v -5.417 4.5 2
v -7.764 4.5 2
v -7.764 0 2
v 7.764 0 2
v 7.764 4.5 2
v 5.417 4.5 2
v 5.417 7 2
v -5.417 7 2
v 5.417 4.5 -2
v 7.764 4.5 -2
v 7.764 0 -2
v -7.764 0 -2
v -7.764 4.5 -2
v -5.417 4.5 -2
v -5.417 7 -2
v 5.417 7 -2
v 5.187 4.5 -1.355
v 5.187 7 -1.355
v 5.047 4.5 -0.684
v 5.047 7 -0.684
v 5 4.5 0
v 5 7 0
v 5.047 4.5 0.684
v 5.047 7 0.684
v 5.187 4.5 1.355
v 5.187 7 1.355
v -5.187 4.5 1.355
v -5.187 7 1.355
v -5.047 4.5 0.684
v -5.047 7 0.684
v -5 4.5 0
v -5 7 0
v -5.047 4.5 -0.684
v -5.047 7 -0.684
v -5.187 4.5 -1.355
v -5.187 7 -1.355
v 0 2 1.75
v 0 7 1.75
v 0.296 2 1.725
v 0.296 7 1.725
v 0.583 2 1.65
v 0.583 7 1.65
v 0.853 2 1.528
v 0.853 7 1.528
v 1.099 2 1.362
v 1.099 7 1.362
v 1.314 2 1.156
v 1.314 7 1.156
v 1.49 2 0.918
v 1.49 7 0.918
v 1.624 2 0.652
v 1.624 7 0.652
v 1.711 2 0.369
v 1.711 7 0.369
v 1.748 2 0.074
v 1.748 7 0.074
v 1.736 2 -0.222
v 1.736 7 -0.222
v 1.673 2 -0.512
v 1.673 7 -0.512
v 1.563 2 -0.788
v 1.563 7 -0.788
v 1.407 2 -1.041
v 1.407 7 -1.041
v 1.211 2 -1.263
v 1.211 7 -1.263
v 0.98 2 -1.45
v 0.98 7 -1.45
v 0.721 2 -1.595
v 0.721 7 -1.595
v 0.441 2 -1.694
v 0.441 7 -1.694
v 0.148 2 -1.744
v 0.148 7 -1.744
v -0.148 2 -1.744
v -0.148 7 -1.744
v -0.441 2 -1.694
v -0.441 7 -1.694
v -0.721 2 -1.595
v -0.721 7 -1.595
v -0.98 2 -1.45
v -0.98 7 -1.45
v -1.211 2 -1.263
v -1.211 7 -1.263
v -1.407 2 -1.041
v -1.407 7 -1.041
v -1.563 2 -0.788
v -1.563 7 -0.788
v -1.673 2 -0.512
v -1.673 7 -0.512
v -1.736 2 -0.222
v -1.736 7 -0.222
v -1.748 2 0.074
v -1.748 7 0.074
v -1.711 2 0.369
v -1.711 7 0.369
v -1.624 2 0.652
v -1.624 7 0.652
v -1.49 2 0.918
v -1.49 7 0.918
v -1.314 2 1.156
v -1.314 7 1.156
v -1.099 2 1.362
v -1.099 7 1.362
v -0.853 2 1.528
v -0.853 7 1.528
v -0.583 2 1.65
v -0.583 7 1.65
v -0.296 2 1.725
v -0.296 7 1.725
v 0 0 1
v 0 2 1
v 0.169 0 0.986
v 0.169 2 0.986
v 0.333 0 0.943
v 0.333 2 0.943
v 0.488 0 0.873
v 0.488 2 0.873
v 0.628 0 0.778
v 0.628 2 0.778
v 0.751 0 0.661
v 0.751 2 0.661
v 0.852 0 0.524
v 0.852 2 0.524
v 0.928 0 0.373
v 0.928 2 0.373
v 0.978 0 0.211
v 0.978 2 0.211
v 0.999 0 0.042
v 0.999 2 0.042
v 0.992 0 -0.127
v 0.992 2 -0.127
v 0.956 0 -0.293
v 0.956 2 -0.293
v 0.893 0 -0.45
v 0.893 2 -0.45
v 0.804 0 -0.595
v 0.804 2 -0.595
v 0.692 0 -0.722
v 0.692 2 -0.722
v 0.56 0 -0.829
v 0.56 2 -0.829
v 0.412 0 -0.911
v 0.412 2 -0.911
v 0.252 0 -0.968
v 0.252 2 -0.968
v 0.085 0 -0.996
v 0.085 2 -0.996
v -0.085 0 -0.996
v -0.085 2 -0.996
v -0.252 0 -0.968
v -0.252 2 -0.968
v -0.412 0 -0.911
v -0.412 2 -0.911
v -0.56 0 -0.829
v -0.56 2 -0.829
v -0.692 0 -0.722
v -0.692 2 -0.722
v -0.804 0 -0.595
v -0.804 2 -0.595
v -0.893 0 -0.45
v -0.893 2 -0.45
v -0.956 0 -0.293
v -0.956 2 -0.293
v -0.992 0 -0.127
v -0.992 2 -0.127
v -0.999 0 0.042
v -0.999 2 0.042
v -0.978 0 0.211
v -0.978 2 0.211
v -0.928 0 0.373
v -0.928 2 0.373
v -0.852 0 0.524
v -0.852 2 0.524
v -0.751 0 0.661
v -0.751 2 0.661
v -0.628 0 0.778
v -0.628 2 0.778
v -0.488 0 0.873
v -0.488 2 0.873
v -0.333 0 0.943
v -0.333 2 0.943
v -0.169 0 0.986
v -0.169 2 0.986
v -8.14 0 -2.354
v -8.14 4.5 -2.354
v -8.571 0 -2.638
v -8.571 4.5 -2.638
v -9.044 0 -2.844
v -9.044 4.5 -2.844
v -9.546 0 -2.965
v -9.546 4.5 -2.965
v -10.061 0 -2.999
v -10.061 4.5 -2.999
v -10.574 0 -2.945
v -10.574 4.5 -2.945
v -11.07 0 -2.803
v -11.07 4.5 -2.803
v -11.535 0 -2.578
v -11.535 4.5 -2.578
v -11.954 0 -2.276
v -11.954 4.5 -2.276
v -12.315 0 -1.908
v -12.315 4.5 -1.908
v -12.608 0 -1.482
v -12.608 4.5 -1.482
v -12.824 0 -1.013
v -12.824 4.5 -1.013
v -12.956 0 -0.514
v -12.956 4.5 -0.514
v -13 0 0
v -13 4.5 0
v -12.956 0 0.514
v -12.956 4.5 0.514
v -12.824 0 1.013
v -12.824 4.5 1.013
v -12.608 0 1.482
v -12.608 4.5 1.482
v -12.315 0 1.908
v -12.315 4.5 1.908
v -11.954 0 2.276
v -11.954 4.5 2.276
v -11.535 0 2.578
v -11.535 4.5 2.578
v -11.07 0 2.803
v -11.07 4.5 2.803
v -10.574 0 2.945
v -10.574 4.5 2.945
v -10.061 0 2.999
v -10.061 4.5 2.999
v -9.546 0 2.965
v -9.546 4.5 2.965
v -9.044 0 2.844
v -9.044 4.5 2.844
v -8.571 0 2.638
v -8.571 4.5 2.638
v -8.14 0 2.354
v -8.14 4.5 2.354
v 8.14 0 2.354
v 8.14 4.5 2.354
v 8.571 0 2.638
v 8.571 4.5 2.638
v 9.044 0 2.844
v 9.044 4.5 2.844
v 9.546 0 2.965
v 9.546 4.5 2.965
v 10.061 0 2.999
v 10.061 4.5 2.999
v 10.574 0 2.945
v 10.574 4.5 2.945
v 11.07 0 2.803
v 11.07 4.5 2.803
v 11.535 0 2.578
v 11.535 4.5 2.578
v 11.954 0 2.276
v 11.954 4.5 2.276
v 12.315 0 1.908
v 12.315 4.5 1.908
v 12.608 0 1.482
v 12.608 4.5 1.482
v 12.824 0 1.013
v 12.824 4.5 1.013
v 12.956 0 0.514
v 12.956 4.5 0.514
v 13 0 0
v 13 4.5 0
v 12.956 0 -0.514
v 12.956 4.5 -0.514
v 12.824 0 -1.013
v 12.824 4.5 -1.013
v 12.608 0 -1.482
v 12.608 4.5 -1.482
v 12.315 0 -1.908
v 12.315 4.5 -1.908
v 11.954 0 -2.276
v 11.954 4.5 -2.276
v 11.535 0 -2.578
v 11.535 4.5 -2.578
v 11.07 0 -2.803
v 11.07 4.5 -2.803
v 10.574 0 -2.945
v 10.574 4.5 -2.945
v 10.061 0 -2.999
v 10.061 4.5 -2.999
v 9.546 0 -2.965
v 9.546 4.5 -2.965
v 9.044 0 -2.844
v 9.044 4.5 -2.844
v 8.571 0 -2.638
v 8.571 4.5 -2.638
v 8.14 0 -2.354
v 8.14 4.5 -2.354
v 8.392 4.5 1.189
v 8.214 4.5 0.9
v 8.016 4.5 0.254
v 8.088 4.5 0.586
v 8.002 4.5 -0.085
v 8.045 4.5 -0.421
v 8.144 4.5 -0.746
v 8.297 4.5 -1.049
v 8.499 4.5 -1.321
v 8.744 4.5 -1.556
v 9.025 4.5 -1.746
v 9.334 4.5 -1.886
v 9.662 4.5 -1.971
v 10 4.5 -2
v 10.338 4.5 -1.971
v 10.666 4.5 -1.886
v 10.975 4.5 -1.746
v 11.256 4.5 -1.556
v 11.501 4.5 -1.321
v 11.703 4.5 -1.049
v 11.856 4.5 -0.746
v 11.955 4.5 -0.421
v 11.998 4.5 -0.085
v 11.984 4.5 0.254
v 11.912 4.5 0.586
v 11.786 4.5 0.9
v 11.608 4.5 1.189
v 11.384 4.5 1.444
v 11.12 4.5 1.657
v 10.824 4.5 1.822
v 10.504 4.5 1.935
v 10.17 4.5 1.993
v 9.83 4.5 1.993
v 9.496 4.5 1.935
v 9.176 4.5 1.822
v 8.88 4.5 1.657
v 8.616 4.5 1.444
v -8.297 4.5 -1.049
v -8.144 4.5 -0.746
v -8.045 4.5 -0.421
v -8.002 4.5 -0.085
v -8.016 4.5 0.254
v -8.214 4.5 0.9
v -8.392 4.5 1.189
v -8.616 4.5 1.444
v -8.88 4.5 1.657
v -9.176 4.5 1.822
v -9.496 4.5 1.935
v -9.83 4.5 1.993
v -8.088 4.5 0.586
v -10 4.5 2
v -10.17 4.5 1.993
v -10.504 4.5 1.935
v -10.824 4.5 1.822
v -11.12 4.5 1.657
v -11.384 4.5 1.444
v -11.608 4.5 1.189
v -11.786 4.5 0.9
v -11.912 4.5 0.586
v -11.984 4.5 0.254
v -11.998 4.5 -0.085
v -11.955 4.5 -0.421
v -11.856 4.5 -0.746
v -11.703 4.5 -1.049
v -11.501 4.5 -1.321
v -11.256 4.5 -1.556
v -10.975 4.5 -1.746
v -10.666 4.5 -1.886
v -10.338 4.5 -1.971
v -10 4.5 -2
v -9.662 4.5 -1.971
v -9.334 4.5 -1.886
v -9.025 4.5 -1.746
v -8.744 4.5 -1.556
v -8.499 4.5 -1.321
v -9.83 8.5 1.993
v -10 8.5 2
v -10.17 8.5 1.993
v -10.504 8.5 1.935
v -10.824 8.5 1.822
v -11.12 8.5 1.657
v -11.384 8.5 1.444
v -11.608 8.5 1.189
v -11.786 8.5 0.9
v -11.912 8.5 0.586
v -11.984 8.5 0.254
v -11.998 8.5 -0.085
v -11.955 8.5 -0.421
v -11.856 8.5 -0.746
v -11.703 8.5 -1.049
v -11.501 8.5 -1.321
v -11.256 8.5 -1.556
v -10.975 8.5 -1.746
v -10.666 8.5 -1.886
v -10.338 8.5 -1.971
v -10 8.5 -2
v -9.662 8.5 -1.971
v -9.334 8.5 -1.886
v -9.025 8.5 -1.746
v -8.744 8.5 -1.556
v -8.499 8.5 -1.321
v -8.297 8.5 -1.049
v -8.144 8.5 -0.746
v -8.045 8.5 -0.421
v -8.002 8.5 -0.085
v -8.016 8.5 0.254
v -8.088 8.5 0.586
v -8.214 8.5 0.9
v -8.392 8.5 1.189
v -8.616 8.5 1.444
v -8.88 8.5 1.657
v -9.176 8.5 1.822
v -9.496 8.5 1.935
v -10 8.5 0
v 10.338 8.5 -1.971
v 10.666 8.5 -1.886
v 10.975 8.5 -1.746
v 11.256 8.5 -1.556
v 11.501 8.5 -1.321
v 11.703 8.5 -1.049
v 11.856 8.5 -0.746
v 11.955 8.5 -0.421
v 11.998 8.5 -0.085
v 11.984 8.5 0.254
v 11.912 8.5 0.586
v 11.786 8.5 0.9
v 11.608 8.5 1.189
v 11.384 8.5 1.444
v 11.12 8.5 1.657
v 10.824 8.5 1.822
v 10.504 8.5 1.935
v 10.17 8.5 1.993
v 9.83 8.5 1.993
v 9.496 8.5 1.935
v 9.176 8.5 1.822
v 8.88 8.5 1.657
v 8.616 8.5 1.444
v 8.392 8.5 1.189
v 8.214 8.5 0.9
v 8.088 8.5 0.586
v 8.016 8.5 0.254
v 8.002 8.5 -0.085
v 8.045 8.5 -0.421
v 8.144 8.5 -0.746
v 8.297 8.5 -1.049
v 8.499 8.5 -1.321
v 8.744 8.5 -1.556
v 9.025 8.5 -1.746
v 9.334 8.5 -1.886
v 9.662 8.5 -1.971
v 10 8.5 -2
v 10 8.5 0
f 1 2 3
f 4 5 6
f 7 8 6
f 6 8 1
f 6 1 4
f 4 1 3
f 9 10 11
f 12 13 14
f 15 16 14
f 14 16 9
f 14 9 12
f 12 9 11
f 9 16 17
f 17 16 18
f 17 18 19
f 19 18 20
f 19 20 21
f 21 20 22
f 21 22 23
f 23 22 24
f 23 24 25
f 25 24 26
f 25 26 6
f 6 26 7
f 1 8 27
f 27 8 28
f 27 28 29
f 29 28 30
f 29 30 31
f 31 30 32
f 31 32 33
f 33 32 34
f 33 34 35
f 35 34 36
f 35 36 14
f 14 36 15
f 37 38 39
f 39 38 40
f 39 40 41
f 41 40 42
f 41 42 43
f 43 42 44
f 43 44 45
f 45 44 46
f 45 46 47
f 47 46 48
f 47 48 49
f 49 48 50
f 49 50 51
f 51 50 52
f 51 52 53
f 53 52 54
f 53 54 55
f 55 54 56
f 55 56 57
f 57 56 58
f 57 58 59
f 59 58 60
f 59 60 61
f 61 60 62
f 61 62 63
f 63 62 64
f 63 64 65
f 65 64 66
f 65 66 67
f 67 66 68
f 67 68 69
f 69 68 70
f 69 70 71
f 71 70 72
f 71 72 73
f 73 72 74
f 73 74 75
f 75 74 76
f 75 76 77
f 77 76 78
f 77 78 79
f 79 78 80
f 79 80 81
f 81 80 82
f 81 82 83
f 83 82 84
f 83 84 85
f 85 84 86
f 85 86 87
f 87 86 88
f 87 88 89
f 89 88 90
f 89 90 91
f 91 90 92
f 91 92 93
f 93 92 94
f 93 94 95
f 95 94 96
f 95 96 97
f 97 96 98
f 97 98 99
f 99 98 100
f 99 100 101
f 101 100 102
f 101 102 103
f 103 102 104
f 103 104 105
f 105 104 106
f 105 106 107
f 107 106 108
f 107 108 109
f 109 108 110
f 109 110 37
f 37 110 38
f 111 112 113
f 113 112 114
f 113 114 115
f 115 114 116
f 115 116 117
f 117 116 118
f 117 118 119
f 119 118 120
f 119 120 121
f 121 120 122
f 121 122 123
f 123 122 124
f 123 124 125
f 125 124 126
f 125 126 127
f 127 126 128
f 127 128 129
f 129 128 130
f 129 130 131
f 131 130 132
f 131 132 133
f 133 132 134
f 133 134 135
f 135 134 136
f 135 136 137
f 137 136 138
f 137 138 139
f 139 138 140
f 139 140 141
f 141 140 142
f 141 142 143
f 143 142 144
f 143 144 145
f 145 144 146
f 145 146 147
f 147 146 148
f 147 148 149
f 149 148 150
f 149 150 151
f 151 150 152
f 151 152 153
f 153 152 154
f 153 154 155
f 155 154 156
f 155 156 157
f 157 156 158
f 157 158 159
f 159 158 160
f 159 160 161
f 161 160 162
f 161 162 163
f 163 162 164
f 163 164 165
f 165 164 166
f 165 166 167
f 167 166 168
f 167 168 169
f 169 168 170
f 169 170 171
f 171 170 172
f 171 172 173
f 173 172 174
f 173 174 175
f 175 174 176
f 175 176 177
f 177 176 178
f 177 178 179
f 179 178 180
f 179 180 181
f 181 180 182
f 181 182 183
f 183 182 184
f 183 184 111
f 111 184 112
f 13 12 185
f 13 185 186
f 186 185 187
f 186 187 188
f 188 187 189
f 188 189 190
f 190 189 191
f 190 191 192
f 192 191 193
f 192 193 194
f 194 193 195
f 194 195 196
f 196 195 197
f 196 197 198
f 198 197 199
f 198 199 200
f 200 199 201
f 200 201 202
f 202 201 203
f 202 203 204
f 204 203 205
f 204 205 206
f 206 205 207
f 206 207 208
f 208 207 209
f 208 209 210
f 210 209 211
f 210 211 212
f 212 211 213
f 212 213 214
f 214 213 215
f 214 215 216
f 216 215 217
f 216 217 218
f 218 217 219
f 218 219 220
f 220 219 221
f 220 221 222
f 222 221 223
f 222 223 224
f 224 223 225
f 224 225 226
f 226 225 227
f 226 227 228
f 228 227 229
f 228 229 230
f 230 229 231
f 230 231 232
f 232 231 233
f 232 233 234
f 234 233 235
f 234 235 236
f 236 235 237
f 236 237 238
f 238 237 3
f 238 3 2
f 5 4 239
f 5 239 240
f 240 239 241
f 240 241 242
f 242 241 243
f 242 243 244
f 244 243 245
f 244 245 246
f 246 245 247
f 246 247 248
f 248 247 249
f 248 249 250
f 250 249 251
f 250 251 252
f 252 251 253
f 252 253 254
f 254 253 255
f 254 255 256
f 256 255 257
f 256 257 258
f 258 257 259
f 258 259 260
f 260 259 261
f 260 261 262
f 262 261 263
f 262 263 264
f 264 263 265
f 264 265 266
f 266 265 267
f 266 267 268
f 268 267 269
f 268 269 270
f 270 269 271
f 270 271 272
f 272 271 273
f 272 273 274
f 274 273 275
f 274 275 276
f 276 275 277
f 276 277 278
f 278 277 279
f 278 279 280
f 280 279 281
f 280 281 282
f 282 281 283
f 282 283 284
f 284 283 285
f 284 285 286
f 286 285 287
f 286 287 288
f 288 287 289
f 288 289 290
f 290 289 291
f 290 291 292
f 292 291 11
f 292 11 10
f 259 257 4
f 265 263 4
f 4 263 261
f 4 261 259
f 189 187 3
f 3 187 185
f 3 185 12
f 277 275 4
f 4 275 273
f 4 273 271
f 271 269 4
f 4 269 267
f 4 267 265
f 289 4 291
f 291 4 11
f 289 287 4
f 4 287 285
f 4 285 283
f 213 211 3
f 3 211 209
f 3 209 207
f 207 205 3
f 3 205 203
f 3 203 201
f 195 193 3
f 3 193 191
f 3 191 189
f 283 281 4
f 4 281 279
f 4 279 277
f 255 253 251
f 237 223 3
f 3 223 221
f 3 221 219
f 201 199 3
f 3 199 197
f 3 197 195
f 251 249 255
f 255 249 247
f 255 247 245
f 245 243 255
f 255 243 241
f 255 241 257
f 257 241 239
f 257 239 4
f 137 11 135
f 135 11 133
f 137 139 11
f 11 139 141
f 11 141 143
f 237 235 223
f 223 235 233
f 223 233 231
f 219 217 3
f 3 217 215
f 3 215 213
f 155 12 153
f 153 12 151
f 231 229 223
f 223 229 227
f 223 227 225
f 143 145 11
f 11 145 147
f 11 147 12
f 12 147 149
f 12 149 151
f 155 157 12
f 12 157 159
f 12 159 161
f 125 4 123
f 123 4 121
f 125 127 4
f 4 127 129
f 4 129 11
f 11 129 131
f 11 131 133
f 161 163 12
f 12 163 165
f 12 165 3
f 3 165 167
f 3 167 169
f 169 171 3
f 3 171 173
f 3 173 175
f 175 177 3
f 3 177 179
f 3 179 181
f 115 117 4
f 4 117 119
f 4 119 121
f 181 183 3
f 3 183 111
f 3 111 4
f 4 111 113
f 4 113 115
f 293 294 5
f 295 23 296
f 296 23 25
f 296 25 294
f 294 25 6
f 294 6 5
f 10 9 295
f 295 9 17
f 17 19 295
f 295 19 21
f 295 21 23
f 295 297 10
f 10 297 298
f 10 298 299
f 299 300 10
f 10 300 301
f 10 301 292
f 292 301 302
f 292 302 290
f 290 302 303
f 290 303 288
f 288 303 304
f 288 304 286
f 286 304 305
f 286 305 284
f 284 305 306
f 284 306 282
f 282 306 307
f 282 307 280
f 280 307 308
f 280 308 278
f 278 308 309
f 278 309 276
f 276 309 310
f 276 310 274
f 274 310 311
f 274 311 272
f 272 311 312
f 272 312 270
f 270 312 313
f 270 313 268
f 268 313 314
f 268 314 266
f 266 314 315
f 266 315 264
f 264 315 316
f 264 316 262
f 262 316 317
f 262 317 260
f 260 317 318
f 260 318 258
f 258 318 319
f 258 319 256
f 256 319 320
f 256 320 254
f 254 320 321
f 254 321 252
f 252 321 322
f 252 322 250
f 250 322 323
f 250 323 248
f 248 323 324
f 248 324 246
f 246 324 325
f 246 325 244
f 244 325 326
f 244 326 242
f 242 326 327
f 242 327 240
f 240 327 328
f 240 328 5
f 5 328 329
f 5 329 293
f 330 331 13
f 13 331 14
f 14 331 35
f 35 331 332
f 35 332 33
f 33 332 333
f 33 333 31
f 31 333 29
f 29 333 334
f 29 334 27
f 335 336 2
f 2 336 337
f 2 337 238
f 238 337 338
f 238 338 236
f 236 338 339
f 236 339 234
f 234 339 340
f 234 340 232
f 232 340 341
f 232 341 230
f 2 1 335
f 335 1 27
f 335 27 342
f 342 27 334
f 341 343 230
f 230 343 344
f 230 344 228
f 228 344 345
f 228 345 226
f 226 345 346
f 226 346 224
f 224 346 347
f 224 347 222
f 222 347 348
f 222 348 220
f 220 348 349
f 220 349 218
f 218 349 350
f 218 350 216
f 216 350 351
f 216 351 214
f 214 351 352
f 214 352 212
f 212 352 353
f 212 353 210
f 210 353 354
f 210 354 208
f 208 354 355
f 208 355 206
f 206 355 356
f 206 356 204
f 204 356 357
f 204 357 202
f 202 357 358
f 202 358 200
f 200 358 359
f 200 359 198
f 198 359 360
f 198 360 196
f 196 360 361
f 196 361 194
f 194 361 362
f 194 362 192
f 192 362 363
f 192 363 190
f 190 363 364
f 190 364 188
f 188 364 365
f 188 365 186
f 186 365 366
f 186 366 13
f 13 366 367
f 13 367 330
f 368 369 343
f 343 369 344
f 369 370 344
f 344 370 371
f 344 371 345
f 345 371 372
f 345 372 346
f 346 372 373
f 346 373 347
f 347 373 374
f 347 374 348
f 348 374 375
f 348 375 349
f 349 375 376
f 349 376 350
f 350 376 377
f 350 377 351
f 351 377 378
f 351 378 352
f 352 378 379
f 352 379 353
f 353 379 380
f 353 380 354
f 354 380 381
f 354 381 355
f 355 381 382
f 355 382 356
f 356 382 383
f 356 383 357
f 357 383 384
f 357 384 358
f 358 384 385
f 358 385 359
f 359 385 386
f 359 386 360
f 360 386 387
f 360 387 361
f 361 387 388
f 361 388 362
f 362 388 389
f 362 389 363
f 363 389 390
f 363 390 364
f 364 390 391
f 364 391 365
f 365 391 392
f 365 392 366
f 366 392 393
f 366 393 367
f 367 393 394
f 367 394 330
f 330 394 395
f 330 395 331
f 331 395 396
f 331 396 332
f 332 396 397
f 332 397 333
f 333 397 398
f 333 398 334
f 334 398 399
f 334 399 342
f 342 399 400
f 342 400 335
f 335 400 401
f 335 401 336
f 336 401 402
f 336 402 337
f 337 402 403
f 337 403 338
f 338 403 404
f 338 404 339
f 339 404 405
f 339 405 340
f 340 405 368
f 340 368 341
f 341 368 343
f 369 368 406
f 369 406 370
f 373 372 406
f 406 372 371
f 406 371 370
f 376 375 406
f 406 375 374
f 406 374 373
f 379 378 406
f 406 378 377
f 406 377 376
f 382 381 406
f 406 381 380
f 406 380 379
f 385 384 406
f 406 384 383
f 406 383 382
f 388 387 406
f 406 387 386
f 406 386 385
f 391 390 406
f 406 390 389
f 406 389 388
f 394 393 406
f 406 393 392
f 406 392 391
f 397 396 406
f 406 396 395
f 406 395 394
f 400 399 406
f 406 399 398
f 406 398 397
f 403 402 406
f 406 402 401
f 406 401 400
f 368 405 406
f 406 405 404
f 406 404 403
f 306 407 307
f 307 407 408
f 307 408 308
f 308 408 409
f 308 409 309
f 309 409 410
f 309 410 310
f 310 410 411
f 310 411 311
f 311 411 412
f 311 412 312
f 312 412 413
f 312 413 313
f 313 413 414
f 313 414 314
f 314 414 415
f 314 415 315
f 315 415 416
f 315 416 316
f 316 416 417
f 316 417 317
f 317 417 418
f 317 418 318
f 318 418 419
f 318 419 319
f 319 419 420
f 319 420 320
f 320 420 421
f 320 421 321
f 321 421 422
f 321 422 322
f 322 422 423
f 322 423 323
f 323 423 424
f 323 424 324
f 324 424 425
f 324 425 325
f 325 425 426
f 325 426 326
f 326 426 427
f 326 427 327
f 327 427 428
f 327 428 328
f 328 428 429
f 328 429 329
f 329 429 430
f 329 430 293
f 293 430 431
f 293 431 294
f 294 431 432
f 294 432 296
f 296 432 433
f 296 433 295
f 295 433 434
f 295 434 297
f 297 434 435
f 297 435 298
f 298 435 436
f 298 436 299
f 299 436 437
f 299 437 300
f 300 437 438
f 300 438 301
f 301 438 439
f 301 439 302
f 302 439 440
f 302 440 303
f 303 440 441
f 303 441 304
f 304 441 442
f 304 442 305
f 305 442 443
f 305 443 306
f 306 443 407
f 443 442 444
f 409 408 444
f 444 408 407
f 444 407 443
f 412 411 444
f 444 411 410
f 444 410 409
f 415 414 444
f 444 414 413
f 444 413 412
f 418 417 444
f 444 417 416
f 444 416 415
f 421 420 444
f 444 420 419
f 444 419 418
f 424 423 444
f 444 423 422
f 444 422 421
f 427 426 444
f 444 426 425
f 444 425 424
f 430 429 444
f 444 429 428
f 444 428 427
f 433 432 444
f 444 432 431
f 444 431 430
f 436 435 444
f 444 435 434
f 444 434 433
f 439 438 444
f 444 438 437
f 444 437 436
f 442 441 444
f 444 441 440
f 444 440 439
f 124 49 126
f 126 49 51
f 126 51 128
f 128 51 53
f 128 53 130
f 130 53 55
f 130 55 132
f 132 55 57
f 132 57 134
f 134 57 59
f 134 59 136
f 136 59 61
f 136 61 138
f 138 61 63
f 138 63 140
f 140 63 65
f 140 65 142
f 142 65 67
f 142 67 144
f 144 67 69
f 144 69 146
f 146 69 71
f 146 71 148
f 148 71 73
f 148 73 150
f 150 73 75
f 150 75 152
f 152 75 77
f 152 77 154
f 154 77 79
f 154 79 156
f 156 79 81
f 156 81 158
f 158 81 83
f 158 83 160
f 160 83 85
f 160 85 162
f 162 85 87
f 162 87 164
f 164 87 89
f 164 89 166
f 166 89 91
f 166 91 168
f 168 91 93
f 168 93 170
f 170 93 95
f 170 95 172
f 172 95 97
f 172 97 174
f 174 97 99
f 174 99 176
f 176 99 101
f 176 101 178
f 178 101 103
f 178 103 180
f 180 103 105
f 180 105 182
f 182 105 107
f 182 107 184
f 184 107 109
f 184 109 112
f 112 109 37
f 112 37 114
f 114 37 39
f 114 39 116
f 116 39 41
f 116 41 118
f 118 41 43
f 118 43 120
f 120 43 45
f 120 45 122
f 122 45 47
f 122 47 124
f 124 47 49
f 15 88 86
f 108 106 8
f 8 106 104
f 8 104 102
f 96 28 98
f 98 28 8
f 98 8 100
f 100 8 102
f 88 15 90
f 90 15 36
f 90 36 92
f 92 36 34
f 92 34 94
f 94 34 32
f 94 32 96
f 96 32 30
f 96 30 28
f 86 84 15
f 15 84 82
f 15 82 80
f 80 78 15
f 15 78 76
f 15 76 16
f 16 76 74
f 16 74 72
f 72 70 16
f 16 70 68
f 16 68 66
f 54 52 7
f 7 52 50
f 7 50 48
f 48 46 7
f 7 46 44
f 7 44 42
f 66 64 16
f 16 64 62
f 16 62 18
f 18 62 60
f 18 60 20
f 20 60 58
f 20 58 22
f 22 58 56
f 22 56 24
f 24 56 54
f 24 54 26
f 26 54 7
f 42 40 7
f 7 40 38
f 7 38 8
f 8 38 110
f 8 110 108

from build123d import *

# Parameters (mm, degrees)
EXTRUDE_1_DEPTH     = 9
SKETCH_2_R          = 5
CUT_EXTRUDE_1_DEPTH = 4.5
SKETCH_3_R          = 2
EXTRUDE_2_DEPTH     = 4
SKETCH_4_R          = 1
CUT_EXTRUDE_2_DEPTH = 10
SKETCH_5_R          = 1.75
CUT_EXTRUDE_3_DEPTH = 7
SKETCH_6_W          = 12.787856614
SKETCH_6_H          = 6.453658168
CUT_EXTRUDE_4_DEPTH = 2


with BuildPart() as part:
    # 草图1 → 凸台-拉伸1 (new body)
    with BuildSketch(Plane(origin=(0, 0, 0), x_dir=(1, 0, 0), z_dir=(0, 1, 0))):
        with BuildLine():
            Line((7.763932023, -2), (-7.763932023, -2))
            ThreePointArc((-7.763932023, -2), (-13, 0), (-7.763932023, 2))
            Line((-7.763932023, 2), (7.763932023, 2))
            ThreePointArc((7.763932023, 2), (13, 0), (7.763932023, -2))
        make_face()
    extrude(amount=EXTRUDE_1_DEPTH)

    # 草图2 → 切除-拉伸1 (cut)
    with BuildSketch(Plane(origin=(0, 9, 0), x_dir=(1, 0, 0), z_dir=(0, 1, 0))):
        with Locations((-10, 0)):
            Circle(SKETCH_2_R)
        with Locations((10, 0)):
            Circle(SKETCH_2_R)
    extrude(amount=-CUT_EXTRUDE_1_DEPTH, mode=Mode.SUBTRACT)

    # 草图3 → 凸台-拉伸2 (add)
    with BuildSketch(Plane(origin=(0, 4.5, 0), x_dir=(1, 0, 0), z_dir=(0, 1, 0))):
        with Locations((-10, 0)):
            Circle(SKETCH_3_R)
        with Locations((10, 0)):
            Circle(SKETCH_3_R)
    extrude(amount=EXTRUDE_2_DEPTH)

    # 草图4 → 切除-拉伸2 (cut, through all)
    with BuildSketch(Plane(origin=(0, 9, 0), x_dir=(1, 0, 0), z_dir=(0, 1, 0))):
        Circle(SKETCH_4_R)
    extrude(amount=-CUT_EXTRUDE_2_DEPTH, mode=Mode.SUBTRACT)

    # 草图5 → 切除-拉伸3 (cut)
    with BuildSketch(Plane(origin=(0, 9, 0), x_dir=(1, 0, 0), z_dir=(0, 1, 0))):
        Circle(SKETCH_5_R)
    extrude(amount=-CUT_EXTRUDE_3_DEPTH, mode=Mode.SUBTRACT)

    # 草图6 → 切除-拉伸4 (cut)
    with BuildSketch(Plane(origin=(0, 9, 0), x_dir=(1, 0, 0), z_dir=(0, 1, 0))):
        Rectangle(SKETCH_6_W, SKETCH_6_H)
    extrude(amount=-CUT_EXTRUDE_4_DEPTH, mode=Mode.SUBTRACT)


solid = part.part
